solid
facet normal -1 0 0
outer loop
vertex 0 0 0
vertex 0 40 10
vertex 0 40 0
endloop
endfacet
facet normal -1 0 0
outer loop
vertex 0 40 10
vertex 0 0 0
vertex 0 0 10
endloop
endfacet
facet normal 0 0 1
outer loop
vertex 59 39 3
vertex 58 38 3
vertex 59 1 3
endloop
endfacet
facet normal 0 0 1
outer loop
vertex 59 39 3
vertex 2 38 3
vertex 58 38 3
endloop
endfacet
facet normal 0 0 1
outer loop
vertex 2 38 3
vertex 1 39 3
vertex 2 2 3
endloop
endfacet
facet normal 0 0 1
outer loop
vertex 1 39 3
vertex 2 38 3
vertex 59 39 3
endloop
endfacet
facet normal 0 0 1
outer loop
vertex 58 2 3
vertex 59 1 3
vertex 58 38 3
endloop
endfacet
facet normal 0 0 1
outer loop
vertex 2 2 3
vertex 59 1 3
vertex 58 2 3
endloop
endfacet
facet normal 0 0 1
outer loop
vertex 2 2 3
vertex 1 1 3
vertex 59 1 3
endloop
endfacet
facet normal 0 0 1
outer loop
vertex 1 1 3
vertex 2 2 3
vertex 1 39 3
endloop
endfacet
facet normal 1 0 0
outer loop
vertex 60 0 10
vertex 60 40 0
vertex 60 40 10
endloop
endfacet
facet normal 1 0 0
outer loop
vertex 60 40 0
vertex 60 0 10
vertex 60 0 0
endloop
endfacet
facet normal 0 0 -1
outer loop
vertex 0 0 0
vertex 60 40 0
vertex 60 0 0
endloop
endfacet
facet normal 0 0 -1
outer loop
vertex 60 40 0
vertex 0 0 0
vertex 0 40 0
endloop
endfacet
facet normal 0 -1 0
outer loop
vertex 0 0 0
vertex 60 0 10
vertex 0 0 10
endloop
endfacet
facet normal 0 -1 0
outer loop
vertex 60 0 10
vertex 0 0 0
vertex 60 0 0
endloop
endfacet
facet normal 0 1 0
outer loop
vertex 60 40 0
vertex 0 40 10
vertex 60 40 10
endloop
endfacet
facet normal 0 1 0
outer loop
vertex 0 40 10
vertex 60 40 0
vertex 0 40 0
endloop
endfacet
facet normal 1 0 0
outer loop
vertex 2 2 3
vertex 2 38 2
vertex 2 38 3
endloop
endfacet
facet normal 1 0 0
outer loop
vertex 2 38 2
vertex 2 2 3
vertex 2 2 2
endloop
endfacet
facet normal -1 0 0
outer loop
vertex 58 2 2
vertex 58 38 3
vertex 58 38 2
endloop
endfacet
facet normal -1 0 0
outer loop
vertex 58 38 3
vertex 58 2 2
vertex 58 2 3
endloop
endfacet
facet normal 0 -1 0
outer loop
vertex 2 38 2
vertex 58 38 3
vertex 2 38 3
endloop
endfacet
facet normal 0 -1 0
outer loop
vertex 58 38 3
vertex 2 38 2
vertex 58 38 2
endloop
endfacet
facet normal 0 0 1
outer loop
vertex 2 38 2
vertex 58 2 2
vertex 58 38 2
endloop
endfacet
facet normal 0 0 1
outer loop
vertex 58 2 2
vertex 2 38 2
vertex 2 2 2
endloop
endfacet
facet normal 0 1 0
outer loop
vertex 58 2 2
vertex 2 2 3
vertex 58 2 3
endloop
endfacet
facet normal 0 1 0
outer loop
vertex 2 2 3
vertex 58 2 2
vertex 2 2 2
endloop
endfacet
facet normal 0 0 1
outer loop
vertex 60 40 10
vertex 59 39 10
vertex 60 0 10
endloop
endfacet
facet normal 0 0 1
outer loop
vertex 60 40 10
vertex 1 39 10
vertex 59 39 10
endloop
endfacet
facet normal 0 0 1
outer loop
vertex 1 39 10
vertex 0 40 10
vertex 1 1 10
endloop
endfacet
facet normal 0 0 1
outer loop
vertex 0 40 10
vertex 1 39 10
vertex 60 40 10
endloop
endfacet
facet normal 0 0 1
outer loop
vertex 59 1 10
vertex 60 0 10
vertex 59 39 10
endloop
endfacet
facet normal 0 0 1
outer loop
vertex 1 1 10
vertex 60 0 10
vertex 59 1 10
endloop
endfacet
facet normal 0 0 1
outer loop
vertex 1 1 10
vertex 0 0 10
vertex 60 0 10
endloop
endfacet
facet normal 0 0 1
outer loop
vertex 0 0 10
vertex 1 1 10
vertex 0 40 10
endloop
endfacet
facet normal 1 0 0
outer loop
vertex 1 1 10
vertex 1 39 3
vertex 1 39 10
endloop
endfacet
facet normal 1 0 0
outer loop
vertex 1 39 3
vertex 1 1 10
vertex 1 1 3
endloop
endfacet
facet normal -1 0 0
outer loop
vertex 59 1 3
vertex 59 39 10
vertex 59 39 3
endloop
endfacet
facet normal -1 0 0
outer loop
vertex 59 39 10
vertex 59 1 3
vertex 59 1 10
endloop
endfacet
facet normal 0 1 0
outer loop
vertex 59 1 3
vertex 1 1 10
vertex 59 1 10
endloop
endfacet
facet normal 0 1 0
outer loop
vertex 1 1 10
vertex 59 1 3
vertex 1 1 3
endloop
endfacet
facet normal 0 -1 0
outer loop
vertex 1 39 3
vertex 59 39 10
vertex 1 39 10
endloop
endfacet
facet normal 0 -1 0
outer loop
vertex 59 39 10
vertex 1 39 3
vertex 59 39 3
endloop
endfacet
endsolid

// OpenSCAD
$fa = 1;
$fs = 0.4;

height = 10;
Xsize = 60;
Ysize = 40;

difference() {
    cube([Xsize, Ysize, height - 7]);
    
    translate([2, 2, 2])
        cube([Xsize - 4, Ysize - 4, height - 7]);
}

difference() {
    translate([0, 0, height - 7])
        cube([Xsize, Ysize, 7]);
    
    translate([1, 1, height - 8])
        cube([Xsize - 2, Ysize - 2, 9]);
}
